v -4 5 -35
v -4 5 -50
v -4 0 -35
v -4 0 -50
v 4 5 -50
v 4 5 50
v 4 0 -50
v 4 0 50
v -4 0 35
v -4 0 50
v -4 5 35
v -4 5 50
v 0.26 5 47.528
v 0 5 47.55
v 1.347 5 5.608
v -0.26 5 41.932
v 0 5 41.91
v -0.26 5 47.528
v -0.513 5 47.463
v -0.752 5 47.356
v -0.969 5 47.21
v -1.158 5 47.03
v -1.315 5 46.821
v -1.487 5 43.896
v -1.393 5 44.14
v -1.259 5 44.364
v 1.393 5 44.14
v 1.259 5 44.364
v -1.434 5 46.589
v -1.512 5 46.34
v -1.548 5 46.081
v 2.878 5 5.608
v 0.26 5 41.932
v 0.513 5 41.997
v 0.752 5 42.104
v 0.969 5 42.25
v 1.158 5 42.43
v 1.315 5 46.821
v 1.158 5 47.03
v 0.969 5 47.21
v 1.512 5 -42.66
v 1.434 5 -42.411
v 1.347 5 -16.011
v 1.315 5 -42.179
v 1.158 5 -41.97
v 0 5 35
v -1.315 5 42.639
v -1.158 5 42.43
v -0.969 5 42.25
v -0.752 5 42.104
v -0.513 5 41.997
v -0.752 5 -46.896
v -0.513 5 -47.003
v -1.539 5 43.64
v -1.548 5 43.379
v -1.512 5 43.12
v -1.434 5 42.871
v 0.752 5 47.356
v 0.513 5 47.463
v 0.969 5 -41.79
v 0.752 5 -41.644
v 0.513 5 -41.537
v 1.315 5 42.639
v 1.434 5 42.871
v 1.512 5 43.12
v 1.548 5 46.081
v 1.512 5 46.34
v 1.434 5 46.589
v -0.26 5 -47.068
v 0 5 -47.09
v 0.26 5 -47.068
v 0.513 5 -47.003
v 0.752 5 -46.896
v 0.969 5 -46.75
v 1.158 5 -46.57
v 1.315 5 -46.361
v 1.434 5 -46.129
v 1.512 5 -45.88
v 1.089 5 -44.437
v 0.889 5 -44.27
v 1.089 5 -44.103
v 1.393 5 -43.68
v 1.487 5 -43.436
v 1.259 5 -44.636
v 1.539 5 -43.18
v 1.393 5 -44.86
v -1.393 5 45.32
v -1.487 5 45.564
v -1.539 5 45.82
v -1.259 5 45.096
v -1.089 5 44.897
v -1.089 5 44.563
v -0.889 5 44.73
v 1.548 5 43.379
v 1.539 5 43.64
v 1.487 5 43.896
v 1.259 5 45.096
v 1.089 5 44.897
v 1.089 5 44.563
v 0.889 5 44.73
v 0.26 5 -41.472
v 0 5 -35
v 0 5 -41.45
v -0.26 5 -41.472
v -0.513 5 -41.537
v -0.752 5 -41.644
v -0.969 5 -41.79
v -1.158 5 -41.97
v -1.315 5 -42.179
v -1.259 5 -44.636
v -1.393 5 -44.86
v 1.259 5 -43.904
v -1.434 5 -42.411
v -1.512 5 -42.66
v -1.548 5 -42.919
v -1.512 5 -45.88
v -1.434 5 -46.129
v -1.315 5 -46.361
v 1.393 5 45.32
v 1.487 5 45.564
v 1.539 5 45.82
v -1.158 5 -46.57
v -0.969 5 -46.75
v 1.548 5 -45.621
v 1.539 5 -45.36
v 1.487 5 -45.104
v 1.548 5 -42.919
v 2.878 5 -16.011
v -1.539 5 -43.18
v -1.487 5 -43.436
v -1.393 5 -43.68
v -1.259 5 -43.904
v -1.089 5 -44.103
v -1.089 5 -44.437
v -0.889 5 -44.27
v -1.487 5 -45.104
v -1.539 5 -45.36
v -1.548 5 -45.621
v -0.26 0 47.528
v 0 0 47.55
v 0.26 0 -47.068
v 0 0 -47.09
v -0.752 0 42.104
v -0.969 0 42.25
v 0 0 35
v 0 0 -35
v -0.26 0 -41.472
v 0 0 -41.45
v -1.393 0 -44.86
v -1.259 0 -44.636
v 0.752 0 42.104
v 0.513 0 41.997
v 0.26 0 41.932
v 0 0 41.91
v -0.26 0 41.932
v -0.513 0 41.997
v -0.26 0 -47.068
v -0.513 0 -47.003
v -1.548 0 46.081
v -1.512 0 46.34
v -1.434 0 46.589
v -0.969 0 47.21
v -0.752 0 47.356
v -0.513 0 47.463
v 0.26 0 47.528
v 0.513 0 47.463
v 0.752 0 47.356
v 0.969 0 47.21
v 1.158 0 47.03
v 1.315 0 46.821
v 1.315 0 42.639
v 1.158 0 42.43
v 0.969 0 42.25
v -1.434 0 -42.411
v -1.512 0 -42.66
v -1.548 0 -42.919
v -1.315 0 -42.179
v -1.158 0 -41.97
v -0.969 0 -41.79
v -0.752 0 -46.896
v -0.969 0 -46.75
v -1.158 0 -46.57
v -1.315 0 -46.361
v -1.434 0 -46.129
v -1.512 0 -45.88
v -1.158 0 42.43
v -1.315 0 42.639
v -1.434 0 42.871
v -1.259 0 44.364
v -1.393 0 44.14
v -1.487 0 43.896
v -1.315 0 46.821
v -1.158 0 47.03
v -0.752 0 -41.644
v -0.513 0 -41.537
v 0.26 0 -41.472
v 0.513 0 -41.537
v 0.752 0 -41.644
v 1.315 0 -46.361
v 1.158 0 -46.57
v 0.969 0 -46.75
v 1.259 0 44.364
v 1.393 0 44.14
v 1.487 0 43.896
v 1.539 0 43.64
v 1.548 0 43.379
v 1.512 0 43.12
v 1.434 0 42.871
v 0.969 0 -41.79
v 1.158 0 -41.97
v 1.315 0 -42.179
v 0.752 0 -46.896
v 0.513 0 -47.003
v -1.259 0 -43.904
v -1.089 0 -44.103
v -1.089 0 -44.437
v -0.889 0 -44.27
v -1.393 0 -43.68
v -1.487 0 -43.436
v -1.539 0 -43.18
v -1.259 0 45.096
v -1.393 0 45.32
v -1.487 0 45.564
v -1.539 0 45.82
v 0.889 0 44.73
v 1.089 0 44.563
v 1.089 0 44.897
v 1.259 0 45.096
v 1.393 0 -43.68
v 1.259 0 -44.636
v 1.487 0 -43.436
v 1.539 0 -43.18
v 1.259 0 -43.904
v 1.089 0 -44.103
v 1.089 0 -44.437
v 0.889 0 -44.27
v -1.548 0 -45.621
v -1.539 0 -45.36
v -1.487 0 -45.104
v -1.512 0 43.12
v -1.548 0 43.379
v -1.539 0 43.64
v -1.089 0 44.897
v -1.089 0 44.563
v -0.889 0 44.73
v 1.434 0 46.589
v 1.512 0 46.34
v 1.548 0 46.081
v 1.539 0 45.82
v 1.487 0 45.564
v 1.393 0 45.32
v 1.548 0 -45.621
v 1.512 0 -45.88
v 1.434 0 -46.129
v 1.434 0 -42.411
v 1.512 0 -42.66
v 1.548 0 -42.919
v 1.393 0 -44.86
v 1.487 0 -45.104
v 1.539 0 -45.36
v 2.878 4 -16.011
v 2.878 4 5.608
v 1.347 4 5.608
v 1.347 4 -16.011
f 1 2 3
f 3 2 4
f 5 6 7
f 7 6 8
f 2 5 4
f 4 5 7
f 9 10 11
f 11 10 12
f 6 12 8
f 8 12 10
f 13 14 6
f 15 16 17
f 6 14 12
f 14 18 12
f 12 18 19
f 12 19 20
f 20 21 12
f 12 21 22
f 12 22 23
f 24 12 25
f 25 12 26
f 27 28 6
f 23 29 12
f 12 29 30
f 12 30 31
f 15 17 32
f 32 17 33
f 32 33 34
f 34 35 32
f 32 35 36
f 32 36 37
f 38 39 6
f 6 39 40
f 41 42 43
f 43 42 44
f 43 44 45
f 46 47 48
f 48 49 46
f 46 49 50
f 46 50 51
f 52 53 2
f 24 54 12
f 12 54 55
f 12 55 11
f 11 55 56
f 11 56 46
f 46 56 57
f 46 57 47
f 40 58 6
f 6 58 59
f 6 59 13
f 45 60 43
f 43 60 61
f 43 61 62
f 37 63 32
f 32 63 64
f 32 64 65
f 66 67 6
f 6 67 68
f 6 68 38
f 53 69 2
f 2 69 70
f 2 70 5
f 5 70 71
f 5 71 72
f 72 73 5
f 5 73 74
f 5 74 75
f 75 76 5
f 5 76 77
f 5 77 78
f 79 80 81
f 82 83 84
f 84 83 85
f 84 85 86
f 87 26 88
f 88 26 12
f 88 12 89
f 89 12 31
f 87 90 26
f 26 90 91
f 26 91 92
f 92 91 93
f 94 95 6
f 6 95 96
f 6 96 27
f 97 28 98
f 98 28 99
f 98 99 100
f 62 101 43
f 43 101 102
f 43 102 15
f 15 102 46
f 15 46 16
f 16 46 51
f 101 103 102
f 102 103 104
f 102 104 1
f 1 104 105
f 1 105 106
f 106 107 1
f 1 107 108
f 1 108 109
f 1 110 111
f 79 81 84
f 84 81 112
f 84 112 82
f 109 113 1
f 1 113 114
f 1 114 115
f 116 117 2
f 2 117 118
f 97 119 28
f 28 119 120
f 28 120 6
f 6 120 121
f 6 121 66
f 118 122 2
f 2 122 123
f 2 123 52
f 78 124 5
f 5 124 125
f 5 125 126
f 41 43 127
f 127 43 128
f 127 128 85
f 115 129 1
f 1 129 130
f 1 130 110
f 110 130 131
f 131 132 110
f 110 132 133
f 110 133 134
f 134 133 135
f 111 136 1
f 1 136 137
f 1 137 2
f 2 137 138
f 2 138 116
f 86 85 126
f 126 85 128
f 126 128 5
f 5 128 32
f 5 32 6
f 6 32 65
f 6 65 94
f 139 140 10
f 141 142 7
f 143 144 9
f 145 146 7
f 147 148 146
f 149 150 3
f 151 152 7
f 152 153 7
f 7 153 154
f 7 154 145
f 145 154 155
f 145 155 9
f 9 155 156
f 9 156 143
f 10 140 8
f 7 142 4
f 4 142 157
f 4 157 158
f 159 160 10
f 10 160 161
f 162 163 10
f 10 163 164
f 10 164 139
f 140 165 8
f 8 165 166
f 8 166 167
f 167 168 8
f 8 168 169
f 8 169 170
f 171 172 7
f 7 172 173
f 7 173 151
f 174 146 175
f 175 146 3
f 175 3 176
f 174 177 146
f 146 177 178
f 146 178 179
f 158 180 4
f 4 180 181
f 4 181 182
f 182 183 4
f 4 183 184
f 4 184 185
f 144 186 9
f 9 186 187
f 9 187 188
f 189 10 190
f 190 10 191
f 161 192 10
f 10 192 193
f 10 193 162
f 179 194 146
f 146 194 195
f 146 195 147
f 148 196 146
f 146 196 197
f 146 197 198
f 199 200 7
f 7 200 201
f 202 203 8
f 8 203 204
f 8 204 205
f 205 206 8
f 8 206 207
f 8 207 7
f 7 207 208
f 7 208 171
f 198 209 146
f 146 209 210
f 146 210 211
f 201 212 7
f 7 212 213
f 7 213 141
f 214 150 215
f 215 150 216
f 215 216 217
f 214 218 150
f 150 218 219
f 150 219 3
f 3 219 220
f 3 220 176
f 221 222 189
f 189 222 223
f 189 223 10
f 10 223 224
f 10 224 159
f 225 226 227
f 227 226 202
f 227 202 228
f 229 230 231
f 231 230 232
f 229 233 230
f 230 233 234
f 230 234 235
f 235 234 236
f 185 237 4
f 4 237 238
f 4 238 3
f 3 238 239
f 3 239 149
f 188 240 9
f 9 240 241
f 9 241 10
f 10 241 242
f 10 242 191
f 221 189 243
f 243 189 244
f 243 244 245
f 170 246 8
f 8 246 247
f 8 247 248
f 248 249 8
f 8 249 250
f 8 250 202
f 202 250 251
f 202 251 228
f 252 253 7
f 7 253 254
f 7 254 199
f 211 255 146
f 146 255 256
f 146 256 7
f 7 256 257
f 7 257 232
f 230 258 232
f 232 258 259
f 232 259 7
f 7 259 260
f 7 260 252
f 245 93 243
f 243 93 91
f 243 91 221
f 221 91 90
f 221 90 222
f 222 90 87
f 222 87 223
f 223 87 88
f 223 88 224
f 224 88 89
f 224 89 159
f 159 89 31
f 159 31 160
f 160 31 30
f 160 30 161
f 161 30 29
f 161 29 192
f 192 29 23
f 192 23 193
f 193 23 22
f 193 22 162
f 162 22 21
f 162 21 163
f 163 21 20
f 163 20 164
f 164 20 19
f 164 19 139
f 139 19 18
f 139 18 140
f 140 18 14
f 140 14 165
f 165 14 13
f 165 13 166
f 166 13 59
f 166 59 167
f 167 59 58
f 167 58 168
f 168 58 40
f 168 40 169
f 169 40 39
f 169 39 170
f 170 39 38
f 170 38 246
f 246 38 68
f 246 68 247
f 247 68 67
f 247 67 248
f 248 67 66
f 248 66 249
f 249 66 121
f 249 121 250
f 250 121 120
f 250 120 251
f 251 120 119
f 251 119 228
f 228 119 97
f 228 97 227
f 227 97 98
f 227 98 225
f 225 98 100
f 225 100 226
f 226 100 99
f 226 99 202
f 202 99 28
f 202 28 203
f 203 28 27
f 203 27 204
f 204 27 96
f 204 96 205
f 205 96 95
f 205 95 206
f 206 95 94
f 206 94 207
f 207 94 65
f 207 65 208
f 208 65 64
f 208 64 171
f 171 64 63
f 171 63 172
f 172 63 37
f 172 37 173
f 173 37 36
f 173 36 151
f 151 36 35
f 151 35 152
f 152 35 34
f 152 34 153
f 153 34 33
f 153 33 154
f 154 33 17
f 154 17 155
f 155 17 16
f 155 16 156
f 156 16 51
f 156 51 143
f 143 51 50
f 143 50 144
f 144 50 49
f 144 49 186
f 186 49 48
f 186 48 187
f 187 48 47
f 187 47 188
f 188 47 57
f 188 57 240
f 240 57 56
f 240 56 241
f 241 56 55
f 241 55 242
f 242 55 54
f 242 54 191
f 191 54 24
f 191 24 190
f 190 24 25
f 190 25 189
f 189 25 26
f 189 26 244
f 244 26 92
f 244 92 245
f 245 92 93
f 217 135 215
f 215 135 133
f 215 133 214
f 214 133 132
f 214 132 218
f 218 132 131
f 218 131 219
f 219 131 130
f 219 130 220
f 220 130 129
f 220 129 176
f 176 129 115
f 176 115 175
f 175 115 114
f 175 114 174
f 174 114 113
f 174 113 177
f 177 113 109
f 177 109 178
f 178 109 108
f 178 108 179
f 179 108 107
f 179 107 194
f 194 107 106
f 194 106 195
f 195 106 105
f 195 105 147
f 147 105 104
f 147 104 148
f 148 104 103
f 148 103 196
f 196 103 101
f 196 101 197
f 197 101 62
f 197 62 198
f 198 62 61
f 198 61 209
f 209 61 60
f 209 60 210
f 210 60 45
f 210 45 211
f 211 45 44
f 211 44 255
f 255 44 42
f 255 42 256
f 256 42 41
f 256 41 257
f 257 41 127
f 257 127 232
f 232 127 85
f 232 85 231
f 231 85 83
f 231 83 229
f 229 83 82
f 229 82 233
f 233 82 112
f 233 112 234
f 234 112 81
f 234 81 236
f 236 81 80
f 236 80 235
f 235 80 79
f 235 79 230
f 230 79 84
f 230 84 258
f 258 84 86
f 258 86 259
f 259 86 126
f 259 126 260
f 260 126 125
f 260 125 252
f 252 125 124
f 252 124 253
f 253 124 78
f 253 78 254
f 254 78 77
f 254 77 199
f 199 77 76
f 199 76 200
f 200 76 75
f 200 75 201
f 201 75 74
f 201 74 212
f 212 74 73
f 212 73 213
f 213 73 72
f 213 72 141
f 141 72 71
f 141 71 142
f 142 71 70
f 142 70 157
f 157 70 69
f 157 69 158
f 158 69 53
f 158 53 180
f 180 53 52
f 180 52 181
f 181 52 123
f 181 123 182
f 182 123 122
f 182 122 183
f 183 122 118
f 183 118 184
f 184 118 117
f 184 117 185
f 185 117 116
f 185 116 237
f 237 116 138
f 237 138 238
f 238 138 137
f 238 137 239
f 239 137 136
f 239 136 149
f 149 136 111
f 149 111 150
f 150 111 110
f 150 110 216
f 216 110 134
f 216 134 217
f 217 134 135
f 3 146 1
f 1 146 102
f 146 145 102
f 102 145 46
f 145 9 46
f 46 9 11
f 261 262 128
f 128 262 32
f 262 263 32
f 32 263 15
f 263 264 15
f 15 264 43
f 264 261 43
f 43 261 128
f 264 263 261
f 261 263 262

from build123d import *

# Parameters (mm, degrees)
SKETCH1_W      = 8
SKETCH1_H      = 100
EXTRUDE1_DEPTH = 5
SKETCH2_R      = 1.55
EXTRUDE4_DEPTH = 5
SKETCH4_R      = 1.55
EXTRUDE6_DEPTH = 5
SKETCH5_W      = 4
SKETCH5_H      = 70
EXTRUDE7_DEPTH = 5
SKETCH6_W      = 1.530516358
SKETCH6_H      = 21.618543552
EXTRUDE8_DEPTH = 1


with BuildPart() as part:
    # Sketch1 → Extrude1 (new body)
    with BuildSketch(Plane(origin=(0, 0, 0), x_dir=(1, 0, 0), z_dir=(0, 1, 0))):
        Rectangle(SKETCH1_W, SKETCH1_H)
    extrude(amount=EXTRUDE1_DEPTH)

    # Sketch2 → Extrude4 (cut)
    with BuildSketch(Plane(origin=(0, 5, 0), x_dir=(1, 0, 0), z_dir=(0, 1, 0))):
        with Locations(Location((0, -46, 0), (0, 0, 270))):
            Circle(SKETCH2_R)
    extrude(amount=-EXTRUDE4_DEPTH, mode=Mode.SUBTRACT)

    # Sketch4 → Extrude6 (cut)
    with BuildSketch(Plane(origin=(0, 5, 0), x_dir=(1, 0, 0), z_dir=(0, 1, 0))):
        with Locations((0, -43.46)):
            Circle(SKETCH4_R)
        with Locations((0, -46)):
            Circle(SKETCH4_R)
        with Locations((0, 43)):
            Circle(SKETCH4_R)
        with Locations((0, 45.54)):
            Circle(SKETCH4_R)
    extrude(amount=-EXTRUDE6_DEPTH, mode=Mode.SUBTRACT)

    # Sketch5 → Extrude7 (cut)
    with BuildSketch(Plane(origin=(0, 5, 0), x_dir=(1, 0, 0), z_dir=(0, 1, 0))):
        with Locations((-2, 0)):
            Rectangle(SKETCH5_W, SKETCH5_H)
    extrude(amount=-EXTRUDE7_DEPTH, mode=Mode.SUBTRACT)

    # Sketch6 → Extrude8 (cut)
    with BuildSketch(Plane(origin=(0, 5, 0), x_dir=(1, 0, 0), z_dir=(0, 1, 0))):
        with Locations((2.112618746, 5.201364346)):
            Rectangle(SKETCH6_W, SKETCH6_H)
    extrude(amount=-EXTRUDE8_DEPTH, mode=Mode.SUBTRACT)


solid = part.part
